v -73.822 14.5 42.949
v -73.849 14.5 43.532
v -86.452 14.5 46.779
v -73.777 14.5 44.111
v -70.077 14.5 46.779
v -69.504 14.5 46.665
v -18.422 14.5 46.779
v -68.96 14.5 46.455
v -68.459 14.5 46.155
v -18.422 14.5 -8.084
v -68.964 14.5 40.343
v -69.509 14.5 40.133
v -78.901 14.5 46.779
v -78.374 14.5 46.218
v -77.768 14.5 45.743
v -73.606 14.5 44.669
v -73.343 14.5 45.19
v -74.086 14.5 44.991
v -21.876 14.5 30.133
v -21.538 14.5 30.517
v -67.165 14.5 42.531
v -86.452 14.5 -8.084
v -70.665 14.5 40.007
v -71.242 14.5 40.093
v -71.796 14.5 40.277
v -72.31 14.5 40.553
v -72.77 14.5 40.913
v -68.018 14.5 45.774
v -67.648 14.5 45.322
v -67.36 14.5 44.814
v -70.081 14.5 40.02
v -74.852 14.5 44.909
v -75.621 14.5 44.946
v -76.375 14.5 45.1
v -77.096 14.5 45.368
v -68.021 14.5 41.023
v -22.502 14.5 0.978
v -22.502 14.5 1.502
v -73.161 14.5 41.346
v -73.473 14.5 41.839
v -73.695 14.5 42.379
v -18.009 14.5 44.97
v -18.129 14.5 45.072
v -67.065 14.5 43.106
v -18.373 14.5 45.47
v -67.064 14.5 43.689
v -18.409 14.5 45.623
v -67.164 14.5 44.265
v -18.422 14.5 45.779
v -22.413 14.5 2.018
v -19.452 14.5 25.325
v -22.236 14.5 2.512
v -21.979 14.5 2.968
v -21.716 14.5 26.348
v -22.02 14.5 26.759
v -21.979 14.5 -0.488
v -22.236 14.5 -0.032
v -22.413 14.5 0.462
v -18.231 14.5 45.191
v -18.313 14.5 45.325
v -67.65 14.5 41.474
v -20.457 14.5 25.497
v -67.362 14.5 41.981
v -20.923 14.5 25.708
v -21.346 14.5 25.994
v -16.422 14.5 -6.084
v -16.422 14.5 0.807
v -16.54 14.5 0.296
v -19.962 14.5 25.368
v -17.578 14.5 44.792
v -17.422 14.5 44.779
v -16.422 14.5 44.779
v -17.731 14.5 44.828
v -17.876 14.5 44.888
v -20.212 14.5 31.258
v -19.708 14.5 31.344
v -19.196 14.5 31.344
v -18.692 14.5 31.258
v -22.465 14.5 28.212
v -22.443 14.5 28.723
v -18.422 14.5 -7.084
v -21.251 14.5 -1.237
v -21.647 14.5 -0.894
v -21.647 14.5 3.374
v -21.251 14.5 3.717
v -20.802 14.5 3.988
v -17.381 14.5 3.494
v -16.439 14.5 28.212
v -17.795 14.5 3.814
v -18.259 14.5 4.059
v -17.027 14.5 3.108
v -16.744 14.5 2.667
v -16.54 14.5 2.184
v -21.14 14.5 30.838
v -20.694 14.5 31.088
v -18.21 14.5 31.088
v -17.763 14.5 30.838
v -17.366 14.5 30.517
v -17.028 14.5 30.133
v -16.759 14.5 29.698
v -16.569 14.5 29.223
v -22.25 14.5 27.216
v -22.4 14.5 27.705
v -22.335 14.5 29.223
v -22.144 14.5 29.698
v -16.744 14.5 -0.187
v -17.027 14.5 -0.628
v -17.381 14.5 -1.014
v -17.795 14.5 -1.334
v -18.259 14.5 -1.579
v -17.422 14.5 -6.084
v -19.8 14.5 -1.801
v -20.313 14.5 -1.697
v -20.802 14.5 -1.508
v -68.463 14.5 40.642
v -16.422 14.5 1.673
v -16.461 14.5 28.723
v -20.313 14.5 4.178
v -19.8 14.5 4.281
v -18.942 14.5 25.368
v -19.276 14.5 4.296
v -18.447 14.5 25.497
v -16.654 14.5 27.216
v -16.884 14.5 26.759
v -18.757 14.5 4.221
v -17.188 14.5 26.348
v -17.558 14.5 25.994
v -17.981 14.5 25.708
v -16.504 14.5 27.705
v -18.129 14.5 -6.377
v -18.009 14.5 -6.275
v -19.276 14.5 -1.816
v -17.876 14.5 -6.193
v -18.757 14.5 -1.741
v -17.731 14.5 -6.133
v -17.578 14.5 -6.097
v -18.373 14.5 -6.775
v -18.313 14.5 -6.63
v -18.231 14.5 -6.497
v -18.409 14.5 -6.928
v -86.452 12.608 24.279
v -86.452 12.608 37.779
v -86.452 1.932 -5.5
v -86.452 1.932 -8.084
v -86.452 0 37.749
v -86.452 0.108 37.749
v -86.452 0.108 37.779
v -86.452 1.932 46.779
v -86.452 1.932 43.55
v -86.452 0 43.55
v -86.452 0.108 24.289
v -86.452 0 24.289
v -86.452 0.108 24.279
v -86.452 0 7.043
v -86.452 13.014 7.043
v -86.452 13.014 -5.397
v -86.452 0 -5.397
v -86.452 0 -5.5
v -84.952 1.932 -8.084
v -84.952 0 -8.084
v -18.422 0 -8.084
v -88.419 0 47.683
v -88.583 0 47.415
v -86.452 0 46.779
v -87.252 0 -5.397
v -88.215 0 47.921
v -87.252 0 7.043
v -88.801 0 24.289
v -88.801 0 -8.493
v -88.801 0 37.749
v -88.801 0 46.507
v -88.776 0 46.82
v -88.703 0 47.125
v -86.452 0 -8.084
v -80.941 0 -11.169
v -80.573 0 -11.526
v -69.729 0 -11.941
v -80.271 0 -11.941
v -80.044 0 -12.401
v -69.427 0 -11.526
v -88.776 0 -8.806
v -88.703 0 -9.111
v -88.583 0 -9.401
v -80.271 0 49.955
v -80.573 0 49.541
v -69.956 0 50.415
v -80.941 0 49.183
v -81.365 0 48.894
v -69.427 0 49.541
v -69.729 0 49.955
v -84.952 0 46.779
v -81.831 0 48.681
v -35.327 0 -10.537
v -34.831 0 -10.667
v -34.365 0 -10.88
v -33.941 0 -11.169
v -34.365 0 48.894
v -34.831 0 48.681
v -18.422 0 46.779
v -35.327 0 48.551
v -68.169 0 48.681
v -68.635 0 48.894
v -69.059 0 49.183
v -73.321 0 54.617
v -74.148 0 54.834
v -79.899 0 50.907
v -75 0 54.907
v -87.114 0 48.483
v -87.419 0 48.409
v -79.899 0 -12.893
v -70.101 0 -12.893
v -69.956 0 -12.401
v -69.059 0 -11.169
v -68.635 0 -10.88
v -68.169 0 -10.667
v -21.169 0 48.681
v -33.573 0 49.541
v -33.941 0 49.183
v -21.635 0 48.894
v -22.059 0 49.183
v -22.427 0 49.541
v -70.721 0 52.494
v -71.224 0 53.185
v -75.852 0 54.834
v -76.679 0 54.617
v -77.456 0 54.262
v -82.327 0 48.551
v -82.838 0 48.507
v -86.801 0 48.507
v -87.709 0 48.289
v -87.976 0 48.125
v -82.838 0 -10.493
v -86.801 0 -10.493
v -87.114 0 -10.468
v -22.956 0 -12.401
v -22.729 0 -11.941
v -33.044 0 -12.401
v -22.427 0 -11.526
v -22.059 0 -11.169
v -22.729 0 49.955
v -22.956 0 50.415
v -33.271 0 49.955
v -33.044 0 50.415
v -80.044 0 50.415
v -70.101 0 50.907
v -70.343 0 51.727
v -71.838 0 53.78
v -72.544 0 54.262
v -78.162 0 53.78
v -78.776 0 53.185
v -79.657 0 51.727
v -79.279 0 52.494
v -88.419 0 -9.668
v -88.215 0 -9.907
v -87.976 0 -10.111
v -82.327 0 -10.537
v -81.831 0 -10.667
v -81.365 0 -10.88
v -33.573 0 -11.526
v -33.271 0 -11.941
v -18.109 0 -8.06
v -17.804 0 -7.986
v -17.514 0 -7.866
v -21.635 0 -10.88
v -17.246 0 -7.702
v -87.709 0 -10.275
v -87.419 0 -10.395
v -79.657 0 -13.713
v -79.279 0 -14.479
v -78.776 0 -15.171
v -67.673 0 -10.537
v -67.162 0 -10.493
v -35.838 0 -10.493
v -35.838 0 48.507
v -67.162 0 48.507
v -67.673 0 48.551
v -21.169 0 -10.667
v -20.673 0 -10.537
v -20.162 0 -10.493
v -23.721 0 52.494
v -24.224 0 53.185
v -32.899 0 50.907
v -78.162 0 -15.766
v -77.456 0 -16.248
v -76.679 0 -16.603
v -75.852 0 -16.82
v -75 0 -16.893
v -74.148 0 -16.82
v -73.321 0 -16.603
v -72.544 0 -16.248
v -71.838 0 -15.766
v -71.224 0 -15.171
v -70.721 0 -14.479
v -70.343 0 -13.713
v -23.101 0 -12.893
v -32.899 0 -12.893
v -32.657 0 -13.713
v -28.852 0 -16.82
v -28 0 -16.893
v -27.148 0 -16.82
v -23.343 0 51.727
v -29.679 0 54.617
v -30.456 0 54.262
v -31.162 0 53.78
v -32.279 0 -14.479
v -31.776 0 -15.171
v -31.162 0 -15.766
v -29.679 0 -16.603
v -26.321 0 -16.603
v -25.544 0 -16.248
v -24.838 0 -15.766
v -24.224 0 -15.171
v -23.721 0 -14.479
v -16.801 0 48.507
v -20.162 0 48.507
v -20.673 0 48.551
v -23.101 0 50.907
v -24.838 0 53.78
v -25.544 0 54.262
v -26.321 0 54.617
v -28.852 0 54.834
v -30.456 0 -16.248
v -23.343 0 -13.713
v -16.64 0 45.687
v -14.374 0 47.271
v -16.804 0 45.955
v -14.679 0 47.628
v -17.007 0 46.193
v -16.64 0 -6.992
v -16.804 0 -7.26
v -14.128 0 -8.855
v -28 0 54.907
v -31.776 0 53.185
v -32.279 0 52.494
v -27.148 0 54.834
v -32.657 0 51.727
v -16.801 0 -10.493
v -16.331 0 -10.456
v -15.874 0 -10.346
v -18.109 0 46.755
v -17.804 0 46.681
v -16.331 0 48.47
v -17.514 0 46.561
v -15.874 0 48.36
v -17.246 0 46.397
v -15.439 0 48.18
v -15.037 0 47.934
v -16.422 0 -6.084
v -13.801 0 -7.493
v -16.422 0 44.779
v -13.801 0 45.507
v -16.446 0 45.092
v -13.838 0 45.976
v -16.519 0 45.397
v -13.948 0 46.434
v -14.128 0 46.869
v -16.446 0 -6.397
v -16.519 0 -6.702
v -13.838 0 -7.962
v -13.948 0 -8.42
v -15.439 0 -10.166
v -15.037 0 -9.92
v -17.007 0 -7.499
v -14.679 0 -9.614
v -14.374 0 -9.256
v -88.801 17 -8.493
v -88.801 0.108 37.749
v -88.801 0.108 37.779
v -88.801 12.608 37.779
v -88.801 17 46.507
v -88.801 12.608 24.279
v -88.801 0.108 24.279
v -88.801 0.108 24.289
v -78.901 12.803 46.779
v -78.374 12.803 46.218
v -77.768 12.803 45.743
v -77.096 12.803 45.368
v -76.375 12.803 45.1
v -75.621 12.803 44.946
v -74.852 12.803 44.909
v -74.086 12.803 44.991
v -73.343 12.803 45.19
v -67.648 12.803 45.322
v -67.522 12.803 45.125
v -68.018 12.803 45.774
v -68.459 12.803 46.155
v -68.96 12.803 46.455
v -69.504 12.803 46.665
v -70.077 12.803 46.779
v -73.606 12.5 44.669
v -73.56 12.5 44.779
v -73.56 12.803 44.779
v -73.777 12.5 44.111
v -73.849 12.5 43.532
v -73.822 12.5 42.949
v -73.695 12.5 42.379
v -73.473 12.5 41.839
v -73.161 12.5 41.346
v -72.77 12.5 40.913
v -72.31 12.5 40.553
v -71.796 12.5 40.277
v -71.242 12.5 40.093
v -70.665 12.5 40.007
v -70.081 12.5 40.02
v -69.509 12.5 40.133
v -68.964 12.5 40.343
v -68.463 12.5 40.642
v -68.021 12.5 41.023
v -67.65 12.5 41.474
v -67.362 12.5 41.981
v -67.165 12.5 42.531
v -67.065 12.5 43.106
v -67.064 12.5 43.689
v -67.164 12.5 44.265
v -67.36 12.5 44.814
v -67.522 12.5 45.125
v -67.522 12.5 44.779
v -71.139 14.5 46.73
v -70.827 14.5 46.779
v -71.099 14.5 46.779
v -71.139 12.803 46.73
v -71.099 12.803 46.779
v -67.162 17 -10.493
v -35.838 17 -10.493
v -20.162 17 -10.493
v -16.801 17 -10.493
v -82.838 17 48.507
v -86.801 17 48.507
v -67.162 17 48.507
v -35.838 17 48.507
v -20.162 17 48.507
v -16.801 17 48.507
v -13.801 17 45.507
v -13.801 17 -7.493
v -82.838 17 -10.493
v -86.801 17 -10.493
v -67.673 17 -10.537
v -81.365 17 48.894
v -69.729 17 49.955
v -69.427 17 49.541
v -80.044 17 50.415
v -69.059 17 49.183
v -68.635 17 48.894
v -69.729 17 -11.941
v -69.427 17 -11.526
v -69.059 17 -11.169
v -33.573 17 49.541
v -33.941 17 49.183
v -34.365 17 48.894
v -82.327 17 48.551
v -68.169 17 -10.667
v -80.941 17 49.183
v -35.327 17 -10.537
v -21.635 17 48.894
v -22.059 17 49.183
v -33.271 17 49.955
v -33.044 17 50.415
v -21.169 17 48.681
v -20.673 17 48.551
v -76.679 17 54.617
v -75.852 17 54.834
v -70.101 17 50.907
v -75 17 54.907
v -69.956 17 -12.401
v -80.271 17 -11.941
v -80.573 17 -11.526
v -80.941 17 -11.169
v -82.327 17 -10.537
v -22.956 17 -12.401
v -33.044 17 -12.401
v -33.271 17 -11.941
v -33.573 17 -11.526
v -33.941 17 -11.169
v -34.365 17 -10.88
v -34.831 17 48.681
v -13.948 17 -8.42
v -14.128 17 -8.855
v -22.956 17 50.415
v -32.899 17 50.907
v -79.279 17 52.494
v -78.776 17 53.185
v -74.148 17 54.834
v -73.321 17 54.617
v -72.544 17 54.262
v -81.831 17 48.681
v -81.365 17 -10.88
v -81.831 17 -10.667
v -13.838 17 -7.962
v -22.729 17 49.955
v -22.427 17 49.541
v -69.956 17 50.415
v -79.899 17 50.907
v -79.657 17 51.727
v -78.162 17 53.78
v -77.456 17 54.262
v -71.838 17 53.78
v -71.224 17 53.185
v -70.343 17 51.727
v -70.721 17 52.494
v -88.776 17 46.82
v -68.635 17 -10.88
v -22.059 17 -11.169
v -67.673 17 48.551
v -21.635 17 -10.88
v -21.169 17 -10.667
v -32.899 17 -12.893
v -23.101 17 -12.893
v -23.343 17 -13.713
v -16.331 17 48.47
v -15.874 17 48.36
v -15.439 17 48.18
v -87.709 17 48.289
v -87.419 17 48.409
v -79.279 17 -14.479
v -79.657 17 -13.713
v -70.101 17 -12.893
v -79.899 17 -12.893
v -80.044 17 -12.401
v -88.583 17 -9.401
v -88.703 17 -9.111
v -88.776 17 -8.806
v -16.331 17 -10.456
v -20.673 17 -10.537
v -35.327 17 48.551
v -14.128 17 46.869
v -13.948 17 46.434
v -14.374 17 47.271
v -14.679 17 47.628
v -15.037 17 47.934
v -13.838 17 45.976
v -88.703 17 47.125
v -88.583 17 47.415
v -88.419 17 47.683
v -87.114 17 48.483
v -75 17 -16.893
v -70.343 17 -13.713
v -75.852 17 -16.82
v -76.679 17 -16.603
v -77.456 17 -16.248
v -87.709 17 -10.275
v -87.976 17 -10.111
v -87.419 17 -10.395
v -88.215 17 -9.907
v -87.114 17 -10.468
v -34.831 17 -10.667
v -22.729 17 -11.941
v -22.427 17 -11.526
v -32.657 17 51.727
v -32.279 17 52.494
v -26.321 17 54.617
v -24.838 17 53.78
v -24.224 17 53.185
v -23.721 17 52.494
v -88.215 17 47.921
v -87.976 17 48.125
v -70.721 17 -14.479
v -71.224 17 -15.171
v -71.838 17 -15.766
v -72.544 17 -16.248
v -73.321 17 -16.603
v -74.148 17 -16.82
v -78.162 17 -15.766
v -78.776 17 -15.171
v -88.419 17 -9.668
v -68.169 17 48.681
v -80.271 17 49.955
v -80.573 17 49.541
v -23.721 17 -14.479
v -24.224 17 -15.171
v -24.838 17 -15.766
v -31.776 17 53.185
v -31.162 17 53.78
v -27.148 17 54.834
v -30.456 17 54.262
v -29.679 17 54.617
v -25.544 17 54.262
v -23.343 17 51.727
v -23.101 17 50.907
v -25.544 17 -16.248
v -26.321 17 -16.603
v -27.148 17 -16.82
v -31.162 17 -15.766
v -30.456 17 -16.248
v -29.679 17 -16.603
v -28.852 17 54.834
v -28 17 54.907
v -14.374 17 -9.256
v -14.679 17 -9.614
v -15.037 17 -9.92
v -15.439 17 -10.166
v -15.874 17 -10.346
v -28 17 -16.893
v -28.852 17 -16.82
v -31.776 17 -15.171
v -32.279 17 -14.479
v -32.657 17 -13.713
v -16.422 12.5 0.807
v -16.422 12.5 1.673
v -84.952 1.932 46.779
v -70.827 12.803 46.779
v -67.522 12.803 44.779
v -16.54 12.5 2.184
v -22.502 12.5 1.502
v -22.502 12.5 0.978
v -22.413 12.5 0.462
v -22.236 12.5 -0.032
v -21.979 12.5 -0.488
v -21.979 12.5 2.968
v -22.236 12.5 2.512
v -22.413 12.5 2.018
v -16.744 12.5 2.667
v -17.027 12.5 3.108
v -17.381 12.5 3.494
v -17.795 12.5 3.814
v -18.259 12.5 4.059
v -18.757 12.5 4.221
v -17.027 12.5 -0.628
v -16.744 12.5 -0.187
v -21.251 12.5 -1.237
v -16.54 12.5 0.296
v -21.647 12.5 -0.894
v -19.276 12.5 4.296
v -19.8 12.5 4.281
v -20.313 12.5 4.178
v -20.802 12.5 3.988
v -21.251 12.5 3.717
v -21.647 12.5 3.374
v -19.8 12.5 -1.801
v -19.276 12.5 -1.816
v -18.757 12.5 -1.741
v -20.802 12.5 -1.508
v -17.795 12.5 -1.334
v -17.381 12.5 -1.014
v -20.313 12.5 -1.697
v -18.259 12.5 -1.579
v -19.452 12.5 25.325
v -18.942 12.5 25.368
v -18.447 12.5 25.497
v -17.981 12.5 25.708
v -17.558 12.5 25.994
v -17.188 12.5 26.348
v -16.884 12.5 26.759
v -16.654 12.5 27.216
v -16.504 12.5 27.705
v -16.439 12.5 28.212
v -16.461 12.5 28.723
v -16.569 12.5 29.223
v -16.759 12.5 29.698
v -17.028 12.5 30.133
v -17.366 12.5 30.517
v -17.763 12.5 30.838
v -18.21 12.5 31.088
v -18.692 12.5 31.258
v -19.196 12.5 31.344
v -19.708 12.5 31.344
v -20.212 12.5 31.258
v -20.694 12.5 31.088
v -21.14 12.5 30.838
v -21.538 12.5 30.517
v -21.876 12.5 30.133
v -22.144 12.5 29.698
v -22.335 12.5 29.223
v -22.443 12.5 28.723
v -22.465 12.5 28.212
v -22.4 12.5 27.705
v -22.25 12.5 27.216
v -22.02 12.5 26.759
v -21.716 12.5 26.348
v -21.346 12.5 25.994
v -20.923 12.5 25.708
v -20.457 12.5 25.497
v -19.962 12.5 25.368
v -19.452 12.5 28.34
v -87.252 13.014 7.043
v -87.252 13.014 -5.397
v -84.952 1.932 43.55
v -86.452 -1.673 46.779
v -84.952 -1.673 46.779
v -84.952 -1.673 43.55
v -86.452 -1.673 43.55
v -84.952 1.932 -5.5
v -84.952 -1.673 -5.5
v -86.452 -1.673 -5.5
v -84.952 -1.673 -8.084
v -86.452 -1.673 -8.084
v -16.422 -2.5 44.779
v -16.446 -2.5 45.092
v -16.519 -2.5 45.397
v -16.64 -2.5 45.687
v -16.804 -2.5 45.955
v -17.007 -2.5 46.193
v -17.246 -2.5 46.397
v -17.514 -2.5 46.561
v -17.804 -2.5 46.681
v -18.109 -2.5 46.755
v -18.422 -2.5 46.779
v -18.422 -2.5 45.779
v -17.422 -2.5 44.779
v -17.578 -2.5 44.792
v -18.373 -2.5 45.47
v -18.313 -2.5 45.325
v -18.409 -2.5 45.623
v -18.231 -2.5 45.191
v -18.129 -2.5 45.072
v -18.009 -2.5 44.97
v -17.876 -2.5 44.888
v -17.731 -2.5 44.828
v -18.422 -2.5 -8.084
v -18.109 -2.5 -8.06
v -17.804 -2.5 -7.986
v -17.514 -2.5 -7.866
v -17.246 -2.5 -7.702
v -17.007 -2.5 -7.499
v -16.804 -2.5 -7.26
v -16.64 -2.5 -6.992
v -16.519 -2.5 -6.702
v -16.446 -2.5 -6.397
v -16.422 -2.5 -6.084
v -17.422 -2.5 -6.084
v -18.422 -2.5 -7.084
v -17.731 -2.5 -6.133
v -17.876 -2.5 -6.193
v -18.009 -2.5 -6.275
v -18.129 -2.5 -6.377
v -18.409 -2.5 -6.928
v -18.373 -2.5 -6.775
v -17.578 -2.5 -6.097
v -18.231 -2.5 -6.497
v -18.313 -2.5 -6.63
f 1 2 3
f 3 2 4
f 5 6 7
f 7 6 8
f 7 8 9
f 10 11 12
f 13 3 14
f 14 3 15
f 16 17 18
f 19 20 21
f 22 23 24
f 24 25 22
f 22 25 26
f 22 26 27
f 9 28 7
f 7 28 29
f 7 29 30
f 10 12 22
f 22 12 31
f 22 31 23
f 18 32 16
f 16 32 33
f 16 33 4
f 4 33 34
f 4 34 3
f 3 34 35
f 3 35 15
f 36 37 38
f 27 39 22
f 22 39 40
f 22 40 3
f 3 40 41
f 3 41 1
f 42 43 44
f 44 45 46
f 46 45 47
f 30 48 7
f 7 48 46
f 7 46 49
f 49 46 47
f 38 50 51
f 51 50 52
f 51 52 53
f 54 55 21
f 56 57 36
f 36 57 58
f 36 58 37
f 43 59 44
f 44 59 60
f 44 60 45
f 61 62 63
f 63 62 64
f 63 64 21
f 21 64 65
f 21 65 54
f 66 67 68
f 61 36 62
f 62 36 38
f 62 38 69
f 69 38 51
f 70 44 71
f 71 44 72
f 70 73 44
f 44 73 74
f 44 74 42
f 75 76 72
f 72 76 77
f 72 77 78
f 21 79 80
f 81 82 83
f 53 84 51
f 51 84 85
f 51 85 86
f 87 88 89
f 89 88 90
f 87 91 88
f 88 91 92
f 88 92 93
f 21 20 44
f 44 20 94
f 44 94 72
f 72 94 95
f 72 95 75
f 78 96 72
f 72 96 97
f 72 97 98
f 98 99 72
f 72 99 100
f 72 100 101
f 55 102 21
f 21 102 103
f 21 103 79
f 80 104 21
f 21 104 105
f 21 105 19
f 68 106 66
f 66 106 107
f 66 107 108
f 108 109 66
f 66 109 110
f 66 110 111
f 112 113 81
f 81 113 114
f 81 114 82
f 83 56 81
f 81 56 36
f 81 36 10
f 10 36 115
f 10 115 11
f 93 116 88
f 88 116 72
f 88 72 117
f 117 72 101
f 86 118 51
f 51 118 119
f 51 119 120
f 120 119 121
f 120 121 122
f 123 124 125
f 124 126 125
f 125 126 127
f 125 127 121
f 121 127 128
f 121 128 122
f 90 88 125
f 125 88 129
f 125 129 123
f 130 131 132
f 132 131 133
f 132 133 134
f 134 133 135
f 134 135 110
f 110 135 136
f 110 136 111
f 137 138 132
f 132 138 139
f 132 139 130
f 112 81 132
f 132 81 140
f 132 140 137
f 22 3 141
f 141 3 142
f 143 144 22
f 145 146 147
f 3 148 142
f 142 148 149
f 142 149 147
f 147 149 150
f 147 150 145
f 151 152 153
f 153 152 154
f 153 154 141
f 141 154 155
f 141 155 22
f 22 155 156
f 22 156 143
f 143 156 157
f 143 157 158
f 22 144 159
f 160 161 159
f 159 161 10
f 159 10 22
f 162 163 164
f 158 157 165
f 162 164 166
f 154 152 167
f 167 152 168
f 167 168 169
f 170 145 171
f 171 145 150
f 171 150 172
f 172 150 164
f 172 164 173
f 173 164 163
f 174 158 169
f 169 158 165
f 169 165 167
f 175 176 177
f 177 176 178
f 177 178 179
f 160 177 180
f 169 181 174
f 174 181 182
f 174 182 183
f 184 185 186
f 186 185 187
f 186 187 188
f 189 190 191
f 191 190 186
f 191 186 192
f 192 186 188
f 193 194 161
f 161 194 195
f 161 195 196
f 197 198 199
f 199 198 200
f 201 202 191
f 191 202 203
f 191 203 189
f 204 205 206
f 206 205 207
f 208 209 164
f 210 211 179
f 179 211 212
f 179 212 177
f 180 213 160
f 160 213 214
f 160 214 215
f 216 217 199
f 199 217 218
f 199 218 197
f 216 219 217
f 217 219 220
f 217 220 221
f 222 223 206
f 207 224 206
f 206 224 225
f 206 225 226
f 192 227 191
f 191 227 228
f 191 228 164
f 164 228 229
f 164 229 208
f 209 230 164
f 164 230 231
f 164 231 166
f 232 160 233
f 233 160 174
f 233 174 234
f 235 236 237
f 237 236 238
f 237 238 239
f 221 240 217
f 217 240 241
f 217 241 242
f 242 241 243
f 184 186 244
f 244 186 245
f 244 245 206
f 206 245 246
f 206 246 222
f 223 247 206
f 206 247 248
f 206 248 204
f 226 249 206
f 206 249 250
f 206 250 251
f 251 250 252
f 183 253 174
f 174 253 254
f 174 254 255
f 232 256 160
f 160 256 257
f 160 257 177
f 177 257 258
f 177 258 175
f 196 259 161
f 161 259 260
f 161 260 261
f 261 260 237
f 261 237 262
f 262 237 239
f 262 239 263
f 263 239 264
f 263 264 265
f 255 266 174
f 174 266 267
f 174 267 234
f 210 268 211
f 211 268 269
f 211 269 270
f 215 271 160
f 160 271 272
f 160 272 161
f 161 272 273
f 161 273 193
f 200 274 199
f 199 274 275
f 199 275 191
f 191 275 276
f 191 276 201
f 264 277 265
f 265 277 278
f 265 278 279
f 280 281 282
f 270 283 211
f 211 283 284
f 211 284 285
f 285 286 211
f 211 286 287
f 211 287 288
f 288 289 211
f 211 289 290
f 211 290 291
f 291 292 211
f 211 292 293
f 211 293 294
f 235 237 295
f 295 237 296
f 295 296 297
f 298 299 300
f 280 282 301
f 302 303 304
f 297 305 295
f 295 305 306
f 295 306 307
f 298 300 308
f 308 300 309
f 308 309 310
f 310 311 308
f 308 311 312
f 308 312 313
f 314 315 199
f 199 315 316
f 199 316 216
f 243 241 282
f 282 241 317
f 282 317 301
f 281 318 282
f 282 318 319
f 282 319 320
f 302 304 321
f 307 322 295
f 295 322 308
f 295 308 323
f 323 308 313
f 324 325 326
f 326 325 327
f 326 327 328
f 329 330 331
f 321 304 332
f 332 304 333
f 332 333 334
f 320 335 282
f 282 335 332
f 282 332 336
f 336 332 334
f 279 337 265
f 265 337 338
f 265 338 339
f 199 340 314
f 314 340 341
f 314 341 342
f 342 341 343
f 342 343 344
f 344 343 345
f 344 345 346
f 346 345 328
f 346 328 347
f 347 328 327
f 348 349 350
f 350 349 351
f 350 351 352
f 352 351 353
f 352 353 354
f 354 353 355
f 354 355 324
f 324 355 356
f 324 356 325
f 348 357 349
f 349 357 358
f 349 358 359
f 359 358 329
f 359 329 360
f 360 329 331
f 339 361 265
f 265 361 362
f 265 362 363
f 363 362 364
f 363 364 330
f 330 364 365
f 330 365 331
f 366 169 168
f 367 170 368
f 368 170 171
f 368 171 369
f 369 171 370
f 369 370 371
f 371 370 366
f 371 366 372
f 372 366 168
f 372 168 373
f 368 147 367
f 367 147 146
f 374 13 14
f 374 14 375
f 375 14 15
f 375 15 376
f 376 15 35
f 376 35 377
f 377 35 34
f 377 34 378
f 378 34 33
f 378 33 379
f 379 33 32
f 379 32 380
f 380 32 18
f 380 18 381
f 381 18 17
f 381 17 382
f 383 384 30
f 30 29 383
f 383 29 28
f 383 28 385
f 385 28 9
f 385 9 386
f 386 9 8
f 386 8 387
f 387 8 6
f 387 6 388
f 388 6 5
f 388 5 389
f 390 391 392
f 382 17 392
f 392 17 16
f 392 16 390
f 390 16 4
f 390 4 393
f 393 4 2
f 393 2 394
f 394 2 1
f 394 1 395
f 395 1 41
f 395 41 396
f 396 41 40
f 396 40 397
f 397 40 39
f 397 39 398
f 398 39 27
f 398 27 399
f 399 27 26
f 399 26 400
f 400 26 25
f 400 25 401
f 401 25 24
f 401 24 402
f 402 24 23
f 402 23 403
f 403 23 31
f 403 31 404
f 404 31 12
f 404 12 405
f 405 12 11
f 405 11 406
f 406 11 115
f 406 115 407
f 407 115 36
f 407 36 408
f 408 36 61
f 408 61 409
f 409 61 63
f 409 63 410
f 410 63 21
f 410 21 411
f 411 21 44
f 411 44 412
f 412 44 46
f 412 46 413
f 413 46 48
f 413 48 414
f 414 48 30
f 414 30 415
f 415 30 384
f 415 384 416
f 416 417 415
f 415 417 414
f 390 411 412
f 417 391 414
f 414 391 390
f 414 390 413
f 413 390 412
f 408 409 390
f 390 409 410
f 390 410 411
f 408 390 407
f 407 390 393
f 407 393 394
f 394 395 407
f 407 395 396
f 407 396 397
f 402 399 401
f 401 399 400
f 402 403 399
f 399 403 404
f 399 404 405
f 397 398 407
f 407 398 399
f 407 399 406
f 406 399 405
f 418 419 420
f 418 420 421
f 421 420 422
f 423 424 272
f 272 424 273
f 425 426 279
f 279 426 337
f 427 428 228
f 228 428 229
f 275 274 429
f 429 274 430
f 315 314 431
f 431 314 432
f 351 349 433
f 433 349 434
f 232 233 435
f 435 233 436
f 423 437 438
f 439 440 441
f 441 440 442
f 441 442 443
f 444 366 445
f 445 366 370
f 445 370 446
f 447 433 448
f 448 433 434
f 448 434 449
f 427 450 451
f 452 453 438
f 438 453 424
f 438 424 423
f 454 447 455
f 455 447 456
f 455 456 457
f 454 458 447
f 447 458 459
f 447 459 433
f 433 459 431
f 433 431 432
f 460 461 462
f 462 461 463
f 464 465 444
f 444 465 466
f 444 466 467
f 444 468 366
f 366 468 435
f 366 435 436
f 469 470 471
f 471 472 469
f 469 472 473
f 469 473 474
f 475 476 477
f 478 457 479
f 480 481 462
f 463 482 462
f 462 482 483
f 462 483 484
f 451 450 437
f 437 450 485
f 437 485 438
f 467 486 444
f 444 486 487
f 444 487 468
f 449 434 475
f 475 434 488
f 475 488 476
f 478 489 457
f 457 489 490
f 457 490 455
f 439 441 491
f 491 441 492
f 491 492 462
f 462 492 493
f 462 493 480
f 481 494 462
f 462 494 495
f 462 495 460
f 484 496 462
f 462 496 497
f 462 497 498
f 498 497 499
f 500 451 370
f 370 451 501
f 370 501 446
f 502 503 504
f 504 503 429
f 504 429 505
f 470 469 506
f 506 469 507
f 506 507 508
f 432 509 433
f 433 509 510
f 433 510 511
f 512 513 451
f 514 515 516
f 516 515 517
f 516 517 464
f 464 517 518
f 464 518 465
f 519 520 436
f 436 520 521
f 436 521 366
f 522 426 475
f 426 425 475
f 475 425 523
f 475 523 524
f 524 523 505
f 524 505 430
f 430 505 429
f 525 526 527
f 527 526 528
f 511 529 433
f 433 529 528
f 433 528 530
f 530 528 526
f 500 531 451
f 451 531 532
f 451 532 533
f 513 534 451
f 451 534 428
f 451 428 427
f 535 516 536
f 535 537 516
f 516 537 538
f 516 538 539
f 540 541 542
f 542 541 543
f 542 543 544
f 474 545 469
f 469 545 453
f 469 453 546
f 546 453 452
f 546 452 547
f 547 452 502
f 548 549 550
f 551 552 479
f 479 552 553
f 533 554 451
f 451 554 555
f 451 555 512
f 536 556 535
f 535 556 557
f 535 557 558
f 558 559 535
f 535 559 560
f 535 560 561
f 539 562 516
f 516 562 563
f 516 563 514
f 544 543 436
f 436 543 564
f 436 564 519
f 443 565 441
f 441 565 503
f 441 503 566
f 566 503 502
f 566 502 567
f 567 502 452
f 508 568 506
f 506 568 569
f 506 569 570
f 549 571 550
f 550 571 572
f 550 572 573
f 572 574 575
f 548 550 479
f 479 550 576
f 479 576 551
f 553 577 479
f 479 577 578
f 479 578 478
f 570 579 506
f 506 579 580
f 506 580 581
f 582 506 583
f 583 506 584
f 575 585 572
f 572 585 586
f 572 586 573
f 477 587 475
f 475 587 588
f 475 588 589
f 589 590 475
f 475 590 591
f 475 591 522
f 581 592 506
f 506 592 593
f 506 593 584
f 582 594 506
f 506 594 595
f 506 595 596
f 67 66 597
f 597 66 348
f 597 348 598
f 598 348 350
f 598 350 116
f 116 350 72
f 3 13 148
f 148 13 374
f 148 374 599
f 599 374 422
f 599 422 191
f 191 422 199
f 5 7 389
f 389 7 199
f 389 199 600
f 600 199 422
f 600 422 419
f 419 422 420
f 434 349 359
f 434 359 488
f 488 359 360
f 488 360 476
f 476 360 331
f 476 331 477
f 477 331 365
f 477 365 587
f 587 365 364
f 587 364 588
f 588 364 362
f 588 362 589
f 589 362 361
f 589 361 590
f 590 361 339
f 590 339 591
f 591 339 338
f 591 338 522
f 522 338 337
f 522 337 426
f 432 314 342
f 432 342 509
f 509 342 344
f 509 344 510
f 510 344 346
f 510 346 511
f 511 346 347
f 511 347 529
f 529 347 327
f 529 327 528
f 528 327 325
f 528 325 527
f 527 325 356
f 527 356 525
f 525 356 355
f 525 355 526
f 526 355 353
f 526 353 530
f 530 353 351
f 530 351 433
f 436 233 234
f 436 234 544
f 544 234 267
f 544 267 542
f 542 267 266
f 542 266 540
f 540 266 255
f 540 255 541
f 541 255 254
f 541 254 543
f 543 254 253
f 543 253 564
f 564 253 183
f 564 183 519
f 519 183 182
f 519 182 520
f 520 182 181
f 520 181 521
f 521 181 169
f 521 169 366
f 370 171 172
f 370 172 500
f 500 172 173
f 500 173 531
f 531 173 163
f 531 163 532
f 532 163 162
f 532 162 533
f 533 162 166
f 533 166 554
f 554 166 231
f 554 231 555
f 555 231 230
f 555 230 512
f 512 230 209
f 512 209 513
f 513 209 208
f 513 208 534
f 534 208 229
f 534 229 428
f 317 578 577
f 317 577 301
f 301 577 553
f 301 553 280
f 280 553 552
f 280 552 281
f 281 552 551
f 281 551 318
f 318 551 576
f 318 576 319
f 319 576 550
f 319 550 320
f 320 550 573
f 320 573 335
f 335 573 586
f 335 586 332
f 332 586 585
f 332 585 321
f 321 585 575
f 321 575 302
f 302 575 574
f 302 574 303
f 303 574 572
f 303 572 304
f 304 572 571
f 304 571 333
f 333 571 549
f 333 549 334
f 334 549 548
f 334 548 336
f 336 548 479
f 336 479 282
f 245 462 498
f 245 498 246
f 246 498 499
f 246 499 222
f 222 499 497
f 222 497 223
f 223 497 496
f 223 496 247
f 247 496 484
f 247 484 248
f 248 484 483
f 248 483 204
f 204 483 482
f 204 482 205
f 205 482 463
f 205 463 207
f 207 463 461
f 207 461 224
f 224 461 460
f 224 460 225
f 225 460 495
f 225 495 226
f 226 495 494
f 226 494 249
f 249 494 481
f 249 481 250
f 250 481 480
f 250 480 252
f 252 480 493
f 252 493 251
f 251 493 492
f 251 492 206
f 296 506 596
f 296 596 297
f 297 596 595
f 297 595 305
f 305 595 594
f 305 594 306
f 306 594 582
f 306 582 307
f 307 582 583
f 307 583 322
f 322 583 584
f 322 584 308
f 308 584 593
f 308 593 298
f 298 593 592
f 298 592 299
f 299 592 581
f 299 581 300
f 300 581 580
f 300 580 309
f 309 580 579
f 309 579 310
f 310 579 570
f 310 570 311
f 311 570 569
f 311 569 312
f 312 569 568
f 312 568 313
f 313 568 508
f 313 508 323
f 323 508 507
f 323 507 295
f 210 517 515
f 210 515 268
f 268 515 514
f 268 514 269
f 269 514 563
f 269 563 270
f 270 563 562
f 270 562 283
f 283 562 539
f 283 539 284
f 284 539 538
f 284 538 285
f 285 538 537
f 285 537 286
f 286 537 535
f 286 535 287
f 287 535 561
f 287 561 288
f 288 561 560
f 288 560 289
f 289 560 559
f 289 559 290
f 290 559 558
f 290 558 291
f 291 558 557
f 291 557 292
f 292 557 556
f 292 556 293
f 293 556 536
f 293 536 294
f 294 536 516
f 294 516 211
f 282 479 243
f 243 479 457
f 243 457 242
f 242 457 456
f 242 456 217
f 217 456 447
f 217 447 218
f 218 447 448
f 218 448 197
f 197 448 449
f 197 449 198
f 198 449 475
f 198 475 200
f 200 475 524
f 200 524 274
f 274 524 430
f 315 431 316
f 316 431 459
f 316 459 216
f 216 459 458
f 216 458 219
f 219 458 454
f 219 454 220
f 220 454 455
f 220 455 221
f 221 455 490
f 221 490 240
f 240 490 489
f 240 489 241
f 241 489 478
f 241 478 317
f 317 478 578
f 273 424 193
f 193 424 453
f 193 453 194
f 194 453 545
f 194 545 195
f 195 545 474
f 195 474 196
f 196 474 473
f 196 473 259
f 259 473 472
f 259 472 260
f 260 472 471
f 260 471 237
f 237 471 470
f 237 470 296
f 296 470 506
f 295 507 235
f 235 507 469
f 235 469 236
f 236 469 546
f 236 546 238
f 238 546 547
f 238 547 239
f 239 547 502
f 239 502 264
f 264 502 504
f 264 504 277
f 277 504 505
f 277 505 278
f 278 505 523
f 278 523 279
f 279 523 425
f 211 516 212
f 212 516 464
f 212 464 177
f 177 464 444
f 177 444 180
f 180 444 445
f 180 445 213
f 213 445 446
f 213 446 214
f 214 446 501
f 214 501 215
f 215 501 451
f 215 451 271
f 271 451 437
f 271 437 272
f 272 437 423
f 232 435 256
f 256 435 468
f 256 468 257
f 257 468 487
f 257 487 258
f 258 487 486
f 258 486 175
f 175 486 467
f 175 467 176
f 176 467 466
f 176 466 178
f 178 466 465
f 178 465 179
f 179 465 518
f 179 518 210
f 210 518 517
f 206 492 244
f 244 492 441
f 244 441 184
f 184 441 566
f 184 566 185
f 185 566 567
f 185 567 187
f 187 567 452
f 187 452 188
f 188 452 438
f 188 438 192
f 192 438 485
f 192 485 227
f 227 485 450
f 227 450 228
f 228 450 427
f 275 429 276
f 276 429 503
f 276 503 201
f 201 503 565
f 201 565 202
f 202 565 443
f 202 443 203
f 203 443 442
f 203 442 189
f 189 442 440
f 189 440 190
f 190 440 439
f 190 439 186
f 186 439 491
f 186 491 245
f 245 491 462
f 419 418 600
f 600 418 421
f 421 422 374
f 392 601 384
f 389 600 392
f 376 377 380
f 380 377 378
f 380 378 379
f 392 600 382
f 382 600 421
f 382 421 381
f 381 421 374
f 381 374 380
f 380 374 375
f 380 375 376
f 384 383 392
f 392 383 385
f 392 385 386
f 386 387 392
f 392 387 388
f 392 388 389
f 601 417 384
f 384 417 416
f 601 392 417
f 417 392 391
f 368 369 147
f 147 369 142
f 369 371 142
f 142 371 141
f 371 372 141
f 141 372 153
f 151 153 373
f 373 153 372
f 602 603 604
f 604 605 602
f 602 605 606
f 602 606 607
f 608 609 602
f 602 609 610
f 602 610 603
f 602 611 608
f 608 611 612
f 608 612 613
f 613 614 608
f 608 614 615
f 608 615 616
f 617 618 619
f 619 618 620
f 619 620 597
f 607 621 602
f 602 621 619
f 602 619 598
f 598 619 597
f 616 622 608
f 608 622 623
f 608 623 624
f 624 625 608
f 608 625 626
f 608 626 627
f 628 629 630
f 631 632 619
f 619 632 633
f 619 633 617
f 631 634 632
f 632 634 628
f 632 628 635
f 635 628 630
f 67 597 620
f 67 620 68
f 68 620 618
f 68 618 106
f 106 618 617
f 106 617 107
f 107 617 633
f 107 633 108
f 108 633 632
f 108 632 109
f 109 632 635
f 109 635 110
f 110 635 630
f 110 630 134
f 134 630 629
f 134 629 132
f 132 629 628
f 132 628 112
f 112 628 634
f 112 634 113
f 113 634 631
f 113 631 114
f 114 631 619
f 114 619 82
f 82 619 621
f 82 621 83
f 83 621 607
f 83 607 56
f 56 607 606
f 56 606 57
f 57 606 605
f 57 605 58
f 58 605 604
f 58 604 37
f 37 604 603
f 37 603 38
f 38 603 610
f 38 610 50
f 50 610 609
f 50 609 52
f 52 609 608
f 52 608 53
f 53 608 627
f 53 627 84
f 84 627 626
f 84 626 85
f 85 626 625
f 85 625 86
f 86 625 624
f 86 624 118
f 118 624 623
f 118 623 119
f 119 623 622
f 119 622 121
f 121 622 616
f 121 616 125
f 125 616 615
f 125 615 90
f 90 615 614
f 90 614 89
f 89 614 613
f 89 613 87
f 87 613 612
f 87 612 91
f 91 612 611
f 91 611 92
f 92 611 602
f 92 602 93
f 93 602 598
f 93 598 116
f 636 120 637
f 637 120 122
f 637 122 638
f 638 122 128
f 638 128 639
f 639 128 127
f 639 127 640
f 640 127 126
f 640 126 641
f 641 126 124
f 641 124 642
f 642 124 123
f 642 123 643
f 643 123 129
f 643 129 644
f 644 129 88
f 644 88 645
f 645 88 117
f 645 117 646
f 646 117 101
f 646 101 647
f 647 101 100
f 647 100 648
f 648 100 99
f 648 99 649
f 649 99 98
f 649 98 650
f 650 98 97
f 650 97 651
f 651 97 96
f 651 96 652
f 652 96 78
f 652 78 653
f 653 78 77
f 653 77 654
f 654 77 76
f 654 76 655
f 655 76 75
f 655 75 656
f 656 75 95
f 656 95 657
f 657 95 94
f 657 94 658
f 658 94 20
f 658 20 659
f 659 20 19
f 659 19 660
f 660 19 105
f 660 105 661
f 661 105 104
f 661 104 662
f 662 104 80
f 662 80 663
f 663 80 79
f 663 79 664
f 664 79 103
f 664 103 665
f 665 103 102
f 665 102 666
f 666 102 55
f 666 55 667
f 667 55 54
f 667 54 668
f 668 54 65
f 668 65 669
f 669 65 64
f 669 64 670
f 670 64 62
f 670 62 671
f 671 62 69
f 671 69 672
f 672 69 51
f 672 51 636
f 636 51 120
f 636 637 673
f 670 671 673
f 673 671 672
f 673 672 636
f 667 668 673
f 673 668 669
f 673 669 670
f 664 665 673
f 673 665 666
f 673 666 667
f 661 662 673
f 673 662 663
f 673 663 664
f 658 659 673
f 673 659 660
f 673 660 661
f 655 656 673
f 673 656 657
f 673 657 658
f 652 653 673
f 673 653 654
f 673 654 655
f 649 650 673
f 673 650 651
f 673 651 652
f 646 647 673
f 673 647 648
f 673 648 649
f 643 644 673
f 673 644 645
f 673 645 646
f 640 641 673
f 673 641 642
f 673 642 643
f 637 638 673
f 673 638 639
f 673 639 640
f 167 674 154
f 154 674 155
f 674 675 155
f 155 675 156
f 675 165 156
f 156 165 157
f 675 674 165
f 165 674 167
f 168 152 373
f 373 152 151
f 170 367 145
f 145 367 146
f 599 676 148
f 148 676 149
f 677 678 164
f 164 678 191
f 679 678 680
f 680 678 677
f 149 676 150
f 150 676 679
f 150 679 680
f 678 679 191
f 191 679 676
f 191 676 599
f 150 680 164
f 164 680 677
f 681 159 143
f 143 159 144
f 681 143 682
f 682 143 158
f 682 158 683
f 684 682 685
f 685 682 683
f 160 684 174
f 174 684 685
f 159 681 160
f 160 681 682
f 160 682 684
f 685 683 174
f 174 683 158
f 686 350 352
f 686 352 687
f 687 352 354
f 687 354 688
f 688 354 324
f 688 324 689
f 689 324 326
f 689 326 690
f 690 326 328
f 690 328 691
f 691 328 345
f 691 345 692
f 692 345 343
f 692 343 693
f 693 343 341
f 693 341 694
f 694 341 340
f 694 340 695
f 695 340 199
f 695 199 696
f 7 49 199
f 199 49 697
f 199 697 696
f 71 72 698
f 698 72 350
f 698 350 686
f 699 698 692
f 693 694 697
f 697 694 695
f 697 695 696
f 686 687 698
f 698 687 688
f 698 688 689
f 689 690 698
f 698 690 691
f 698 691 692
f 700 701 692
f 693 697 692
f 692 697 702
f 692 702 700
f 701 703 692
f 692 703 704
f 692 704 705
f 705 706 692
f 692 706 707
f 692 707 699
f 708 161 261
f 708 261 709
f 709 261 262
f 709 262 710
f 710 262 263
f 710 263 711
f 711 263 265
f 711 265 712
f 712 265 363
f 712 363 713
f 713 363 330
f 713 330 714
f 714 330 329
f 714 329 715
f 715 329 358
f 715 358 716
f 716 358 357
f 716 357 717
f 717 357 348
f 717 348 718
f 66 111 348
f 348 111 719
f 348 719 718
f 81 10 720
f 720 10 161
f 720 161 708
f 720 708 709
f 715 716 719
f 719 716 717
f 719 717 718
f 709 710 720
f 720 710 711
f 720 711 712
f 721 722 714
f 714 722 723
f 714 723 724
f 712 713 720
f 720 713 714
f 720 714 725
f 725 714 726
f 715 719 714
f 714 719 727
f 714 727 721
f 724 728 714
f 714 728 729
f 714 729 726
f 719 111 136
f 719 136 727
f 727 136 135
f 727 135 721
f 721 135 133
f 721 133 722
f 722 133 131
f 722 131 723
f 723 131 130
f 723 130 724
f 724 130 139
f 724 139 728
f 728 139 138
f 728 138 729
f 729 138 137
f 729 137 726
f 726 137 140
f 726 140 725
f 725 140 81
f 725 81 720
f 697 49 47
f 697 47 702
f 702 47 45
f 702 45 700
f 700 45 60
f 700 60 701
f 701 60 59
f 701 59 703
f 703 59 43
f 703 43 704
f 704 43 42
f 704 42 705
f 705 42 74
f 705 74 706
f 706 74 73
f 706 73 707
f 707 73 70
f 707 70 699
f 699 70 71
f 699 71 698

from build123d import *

# Parameters (mm, degrees)
SKETCH1_W            = 75
SKETCH1_H            = 59
BOSS_EXTRUDE1_DEPTH  = 17
SKETCH2_W            = 70.030390533
SKETCH2_H            = 54.863609995
CUT_EXTRUDE1_DEPTH   = 14.5
FILLET2_R            = 2
FILLET3_R            = 2
FILLET4_R            = 3
FILLET5_R            = 3
FILLET6_R            = 2
FILLET7_R            = 2
SKETCH3_W            = 16.063867443
SKETCH3_H            = 6.760736642
SKETCH3_W_2          = 17.298229076
BOSS_EXTRUDE4_DEPTH  = 1.5
SKETCH4_W            = 16.053106641
SKETCH4_H            = 5.652521888
BOSS_EXTRUDE5_DEPTH  = 1.5
SKETCH5_R            = 5
BOSS_EXTRUDE7_DEPTH  = 17
FILLET8_R            = 3
FILLET9_R            = 3
FILLET10_R           = 3
FILLET11_R           = 3
FILLET12_R           = 3
FILLET13_R           = 3
FILLET14_R           = 3
FILLET15_R           = 3
SKETCH8_R            = 3.4
BOSS_EXTRUDE8_DEPTH  = 2
SKETCH9_W            = 12.808706793
SKETCH9_H            = 4.429846096
CUT_EXTRUDE2_DEPTH   = 2
FILLET16_R           = 2
SKETCH10_W           = 13.5
SKETCH10_H           = 12.5
CUT_EXTRUDE3_DEPTH   = 93.639080666
SKETCH12_R           = 3.015343742
SKETCH12_R_2         = 3.061200892
BOSS_EXTRUDE9_DEPTH  = 2.5
SKETCH13_W           = 14.232082031
SKETCH13_H           = 6.597089722
CUT_EXTRUDE5_DEPTH   = 2
SKETCH14_W           = 10.206840338
SKETCH14_H           = 7.342462146
CUT_EXTRUDE6_DEPTH   = 2
SKETCH15_W           = 11.301995552
SKETCH15_H           = 4.624503131
CUT_EXTRUDE7_DEPTH   = 2
SKETCH17_W           = 12.439796887
SKETCH17_H           = 13.014402488
CUT_EXTRUDE8_DEPTH   = 0.8
SKETCH20_W           = 2.355031091
SKETCH20_H           = 13.45969072
CUT_EXTRUDE9_DEPTH   = 10
SKETCH24_W           = 16.053106641
SKETCH24_H           = 5.652521888
CUT_EXTRUDE10_DEPTH  = 1.5
SKETCH25_W           = 17.298229076
SKETCH25_H           = 6.760736642
CUT_EXTRUDE11_DEPTH  = 1.5
SKETCH26_W           = 16.063867443
SKETCH26_H           = 6.760736642
CUT_EXTRUDE12_DEPTH  = 1.5
SKETCH27_W           = 10.245109275
SKETCH27_H           = 5.404900878
SKETCH27_W_2         = 8.945643237
SKETCH27_H_2         = 7.064717813
CUT_EXTRUDE15_DEPTH  = 1.5
SKETCH29_W           = 59.670840593
SKETCH29_H           = 9.824746357
CUT_EXTRUDE23_DEPTH  = 2.5
SKETCH30_W           = 2.58437015
SKETCH30_H           = 3.605163566
SKETCH30_W_2         = 3.229261283
BOSS_EXTRUDE10_DEPTH = 1.5
BOSS_EXTRUDE12_DEPTH = 17
BOSS_EXTRUDE13_DEPTH = 17
FILLET25_R           = 1
FILLET26_R           = 1


with BuildPart() as part:
    # Sketch1 → Boss-Extrude1 (new body)
    with BuildSketch(Plane(origin=(0, 0, 0), x_dir=(1, 0, 0), z_dir=(0, 1, 0))):
        with Locations((-51.300737228, -19.00715852)):
            Rectangle(SKETCH1_W, SKETCH1_H)
    extrude(amount=BOSS_EXTRUDE1_DEPTH)

    # Sketch2 → Cut-Extrude1 (cut)
    with BuildSketch(Plane(origin=(0, 0, 0), x_dir=(-1, 0, 0), z_dir=(0, -1, 0))):
        with Locations((51.436785652, -19.347434848)):
            Rectangle(SKETCH2_W, SKETCH2_H)
    extrude(amount=-CUT_EXTRUDE1_DEPTH, mode=Mode.SUBTRACT)

    # Fillet2
    fillet2_edges = [part.edges().sort_by_distance(p)[0] for p in [
        (-16.421590385, 7.25, -8.08437015),
    ]]
    fillet(fillet2_edges, radius=FILLET2_R)

    # Fillet3
    fillet3_edges = [part.edges().sort_by_distance(p)[0] for p in [
        (-16.421590385, 7.25, 46.779239845),
    ]]
    fillet(fillet3_edges, radius=FILLET3_R)

    # Fillet4
    fillet4_edges = [part.edges().sort_by_distance(p)[0] for p in [
        (-13.800737228, 8.5, -10.49284148),
    ]]
    fillet(fillet4_edges, radius=FILLET4_R)

    # Fillet5
    fillet5_edges = [part.edges().sort_by_distance(p)[0] for p in [
        (-13.800737228, 8.5, 48.50715852),
    ]]
    fillet(fillet5_edges, radius=FILLET5_R)

    # Fillet6
    fillet6_edges = [part.edges().sort_by_distance(p)[0] for p in [
        (-88.800737228, 8.5, -10.49284148),
    ]]
    fillet(fillet6_edges, radius=FILLET6_R)

    # Fillet7
    fillet7_edges = [part.edges().sort_by_distance(p)[0] for p in [
        (-88.800737228, 8.5, 48.50715852),
    ]]
    fillet(fillet7_edges, radius=FILLET7_R)

    # Sketch3 → Boss-Extrude4 (add)
    with BuildSketch(Plane.XY.offset(-8.08437015)):
        with Locations((-26.453524107, 1.054300918)):
            Rectangle(SKETCH3_W, SKETCH3_H)
        with Locations((-77.80286638, 1.054300918)):
            Rectangle(SKETCH3_W_2, SKETCH3_H)
    extrude(amount=BOSS_EXTRUDE4_DEPTH)

    # Sketch4 → Boss-Extrude5 (add)
    with BuildSketch(Plane(origin=(0, 0, 46.779239845), x_dir=(-1, 0, 0), z_dir=(0, 0, -1))):
        with Locations((55.103314843, -0.060708267)):
            Rectangle(SKETCH4_W, SKETCH4_H)
    extrude(amount=BOSS_EXTRUDE5_DEPTH)

    # Sketch5 → Boss-Extrude7 (add)
    with BuildSketch(Plane(origin=(0, 17, 0), x_dir=(1, 0, 0), z_dir=(0, 1, 0))):
        with Locations((-75, 11.89284148)):
            Circle(SKETCH5_R)
        with Locations((-28, 11.89284148)):
            Circle(SKETCH5_R)
        with Locations((-28, -49.90715852)):
            Circle(SKETCH5_R)
        with Locations((-75, -49.90715852)):
            Circle(SKETCH5_R)
    extrude(amount=-BOSS_EXTRUDE7_DEPTH)

    # Fillet8
    fillet8_edges = [part.edges().sort_by_distance(p)[0] for p in [
        (-32.8, 8.5, 48.50715852),
    ]]
    fillet(fillet8_edges, radius=FILLET8_R)

    # Fillet9
    fillet9_edges = [part.edges().sort_by_distance(p)[0] for p in [
        (-23.2, 8.5, 48.50715852),
    ]]
    fillet(fillet9_edges, radius=FILLET9_R)

    # Fillet10
    fillet10_edges = [part.edges().sort_by_distance(p)[0] for p in [
        (-32.8, 8.5, -10.49284148),
    ]]
    fillet(fillet10_edges, radius=FILLET10_R)

    # Fillet11
    fillet11_edges = [part.edges().sort_by_distance(p)[0] for p in [
        (-23.2, 8.5, -10.49284148),
    ]]
    fillet(fillet11_edges, radius=FILLET11_R)

    # Fillet12
    fillet12_edges = [part.edges().sort_by_distance(p)[0] for p in [
        (-70.2, 8.5, -10.49284148),
    ]]
    fillet(fillet12_edges, radius=FILLET12_R)

    # Fillet13
    fillet13_edges = [part.edges().sort_by_distance(p)[0] for p in [
        (-79.8, 8.5, -10.49284148),
    ]]
    fillet(fillet13_edges, radius=FILLET13_R)

    # Fillet14
    fillet14_edges = [part.edges().sort_by_distance(p)[0] for p in [
        (-79.8, 8.5, 48.50715852),
    ]]
    fillet(fillet14_edges, radius=FILLET14_R)

    # Fillet15
    fillet15_edges = [part.edges().sort_by_distance(p)[0] for p in [
        (-70.2, 8.5, 48.50715852),
    ]]
    fillet(fillet15_edges, radius=FILLET15_R)

    # Sketch8 → Boss-Extrude8 (add)
    with BuildSketch(Plane(origin=(0, 14.5, 0), x_dir=(-1, 0, 0), z_dir=(0, -1, 0))):
        with Locations((70.451980918, -43.4)):
            Circle(SKETCH8_R)
    extrude(amount=BOSS_EXTRUDE8_DEPTH)

    # Sketch9 → Cut-Extrude2 (cut)
    with BuildSketch(Plane(origin=(0, 0, 46.779239845), x_dir=(-1, 0, 0), z_dir=(0, 0, -1))):
        with Locations((73.926541466, 10.587695891)):
            Rectangle(SKETCH9_W, SKETCH9_H)
    extrude(amount=CUT_EXTRUDE2_DEPTH, mode=Mode.SUBTRACT)

    # Fillet16
    # the kernel refuses this fillet: 2 mm, written as the material it takes off along each edge
    with BuildSketch(Plane(origin=(-75, 8.372772843, 49.90715852), x_dir=(0.9477649598196841, 0, 0.31896956114650243), z_dir=(-0.31896956114650243, 0, 0.9477649598196841))) as fillet16_piece_1_section:
        with BuildLine():
            CenterArc((5 - FILLET16_R, -FILLET16_R), FILLET16_R, 0, 90)
            Line((5 - FILLET16_R, 0), (5, 0))
            Line((5, 0), (5, -FILLET16_R))
        make_face()
    fillet16_piece_1 = revolve(axis=Axis((-75, 8.372772843, 49.90715852), (0, 1, 0)), revolution_arc=217.20123952, mode=Mode.PRIVATE)
    fillet16_piece_1 = split(fillet16_piece_1, bisect_by=Plane(origin=(-75, 7.75577909, 46.779239845), z_dir=(0, 0, -1)), keep=Keep.TOP, mode=Mode.PRIVATE)
    add(fillet16_piece_1, mode=Mode.SUBTRACT)

    # Sketch10 → Cut-Extrude3 (cut, through all)
    with BuildSketch(Plane(origin=(-86.451980918, 0, 0), x_dir=(0, 0, -1), z_dir=(1, 0, 0))):
        with Locations((-31.029239845, 6.358142349)):
            Rectangle(SKETCH10_W, SKETCH10_H)
    extrude(amount=-CUT_EXTRUDE3_DEPTH, mode=Mode.SUBTRACT)

    # Sketch12 → Boss-Extrude9 (add)
    with BuildSketch(Plane.XZ.offset(-12.5)):
        with Locations(Location((-19.451980918, 28.340005887, 0), (0, 0, 270))):
            Circle(SKETCH12_R)
        with Locations((-19.451980918, 1.240005887)):
            Circle(SKETCH12_R_2)
    extrude(amount=-BOSS_EXTRUDE9_DEPTH)

    # Sketch13 → Cut-Extrude5 (cut)
    with BuildSketch(Plane(origin=(0, 0, 46.779239845), x_dir=(-1, 0, 0), z_dir=(0, 0, -1))):
        with Locations((28.532879783, 11.201455139)):
            Rectangle(SKETCH13_W, SKETCH13_H)
    extrude(amount=CUT_EXTRUDE5_DEPTH, mode=Mode.SUBTRACT)

    # Sketch14 → Cut-Extrude6 (cut)
    with BuildSketch(Plane.XY.offset(-8.08437015)):
        with Locations((-28.337854921, 10.828768927)):
            Rectangle(SKETCH14_W, SKETCH14_H)
    extrude(amount=CUT_EXTRUDE6_DEPTH, mode=Mode.SUBTRACT)

    # Sketch15 → Cut-Extrude7 (cut)
    with BuildSketch(Plane.XY.offset(-8.08437015)):
        with Locations((-75.453181284, 12.187748435)):
            Rectangle(SKETCH15_W, SKETCH15_H)
    extrude(amount=CUT_EXTRUDE7_DEPTH, mode=Mode.SUBTRACT)

    # Sketch17 → Cut-Extrude8 (cut)
    with BuildSketch(Plane(origin=(-86.451980918, 0, 0), x_dir=(0, 0, -1), z_dir=(1, 0, 0))):
        with Locations((-0.822624341, 6.507201244)):
            Rectangle(SKETCH17_W, SKETCH17_H)
    extrude(amount=-CUT_EXTRUDE8_DEPTH, mode=Mode.SUBTRACT)

    # Sketch20 → Cut-Extrude9 (cut)
    with BuildSketch(Plane.XZ):
        with Locations((-87.623221683, 31.019256527)):
            Rectangle(SKETCH20_W, SKETCH20_H)
    extrude(amount=-CUT_EXTRUDE9_DEPTH, mode=Mode.SUBTRACT)

    # Sketch24 → Cut-Extrude10 (cut)
    with BuildSketch(Plane(origin=(0, 0, 45.279239845), x_dir=(-1, 0, 0), z_dir=(0, 0, -1))):
        with Locations((55.103314843, -0.060708267)):
            Rectangle(SKETCH24_W, SKETCH24_H)
    extrude(amount=-CUT_EXTRUDE10_DEPTH, mode=Mode.SUBTRACT)

    # Sketch25 → Cut-Extrude11 (cut)
    with BuildSketch(Plane.XY.offset(-6.58437015)):
        with Locations((-77.80286638, 1.054300918)):
            Rectangle(SKETCH25_W, SKETCH25_H)
    extrude(amount=-CUT_EXTRUDE11_DEPTH, mode=Mode.SUBTRACT)

    # Sketch26 → Cut-Extrude12 (cut)
    with BuildSketch(Plane.XY.offset(-6.58437015)):
        with Locations((-26.453524107, 1.054300918)):
            Rectangle(SKETCH26_W, SKETCH26_H)
    extrude(amount=-CUT_EXTRUDE12_DEPTH, mode=Mode.SUBTRACT)

    # Sketch27 → Cut-Extrude15 (cut)
    with BuildSketch(Plane.XY.offset(-8.08437015)):
        with Locations((-28.244157388, 6.012393954)):
            Rectangle(SKETCH27_W, SKETCH27_H)
        with Locations((-74.691547802, 7.280418696)):
            Rectangle(SKETCH27_W_2, SKETCH27_H_2)
    extrude(amount=CUT_EXTRUDE15_DEPTH, mode=Mode.SUBTRACT)

    # Sketch29 → Cut-Extrude23 (cut)
    with BuildSketch(Plane(origin=(0, 0, 46.779239845), x_dir=(-1, 0, 0), z_dir=(0, 0, -1))):
        with Locations((52.407440491, 4.047505326)):
            Rectangle(SKETCH29_W, SKETCH29_H)
    extrude(amount=CUT_EXTRUDE23_DEPTH, mode=Mode.SUBTRACT)

    # Sketch30 → Boss-Extrude10 (add)
    with BuildSketch(Plane(origin=(-86.451980918, 0, 0), x_dir=(0, 0, -1), z_dir=(1, 0, 0))):
        with Locations((6.792185075, 0.129538017)):
            Rectangle(SKETCH30_W, SKETCH30_H)
        with Locations((-45.164609204, 0.129538017)):
            Rectangle(SKETCH30_W_2, SKETCH30_H)
    extrude(amount=BOSS_EXTRUDE10_DEPTH)

    # Sketch33 → Boss-Extrude12 (add)
    with BuildSketch(Plane.XZ.offset(-14.5)):
        with BuildLine():
            Line((-18.421590385, 46.779239845), (-18.421590385, 44.779239845))
            Line((-18.421590385, 44.779239845), (-16.421590385, 44.779239845))
            ThreePointArc((-16.421590385, 44.779239845), (-17.007376823, 46.193453407), (-18.421590385, 46.779239845))
        make_face()
    extrude(amount=BOSS_EXTRUDE12_DEPTH)

    # Sketch34 → Boss-Extrude13 (add)
    with BuildSketch(Plane(origin=(0, 14.5, 0), x_dir=(-1, 0, 0), z_dir=(0, -1, 0))):
        with BuildLine():
            Line((16.421590385, 6.08437015), (18.421590385, 6.08437015))
            Line((18.421590385, 6.08437015), (18.421590385, 8.08437015))
            ThreePointArc((18.421590385, 8.08437015), (17.007376823, 7.498583712), (16.421590385, 6.08437015))
        make_face()
    extrude(amount=BOSS_EXTRUDE13_DEPTH)

    # Fillet25
    fillet25_edges = [part.edges().sort_by_distance(p)[0] for p in [
        (-18.421590385, 6, -6.08437015),
    ]]
    fillet(fillet25_edges, radius=FILLET25_R)

    # Fillet26
    fillet26_edges = [part.edges().sort_by_distance(p)[0] for p in [
        (-18.421590385, 6, 44.779239845),
    ]]
    fillet(fillet26_edges, radius=FILLET26_R)


solid = part.part
